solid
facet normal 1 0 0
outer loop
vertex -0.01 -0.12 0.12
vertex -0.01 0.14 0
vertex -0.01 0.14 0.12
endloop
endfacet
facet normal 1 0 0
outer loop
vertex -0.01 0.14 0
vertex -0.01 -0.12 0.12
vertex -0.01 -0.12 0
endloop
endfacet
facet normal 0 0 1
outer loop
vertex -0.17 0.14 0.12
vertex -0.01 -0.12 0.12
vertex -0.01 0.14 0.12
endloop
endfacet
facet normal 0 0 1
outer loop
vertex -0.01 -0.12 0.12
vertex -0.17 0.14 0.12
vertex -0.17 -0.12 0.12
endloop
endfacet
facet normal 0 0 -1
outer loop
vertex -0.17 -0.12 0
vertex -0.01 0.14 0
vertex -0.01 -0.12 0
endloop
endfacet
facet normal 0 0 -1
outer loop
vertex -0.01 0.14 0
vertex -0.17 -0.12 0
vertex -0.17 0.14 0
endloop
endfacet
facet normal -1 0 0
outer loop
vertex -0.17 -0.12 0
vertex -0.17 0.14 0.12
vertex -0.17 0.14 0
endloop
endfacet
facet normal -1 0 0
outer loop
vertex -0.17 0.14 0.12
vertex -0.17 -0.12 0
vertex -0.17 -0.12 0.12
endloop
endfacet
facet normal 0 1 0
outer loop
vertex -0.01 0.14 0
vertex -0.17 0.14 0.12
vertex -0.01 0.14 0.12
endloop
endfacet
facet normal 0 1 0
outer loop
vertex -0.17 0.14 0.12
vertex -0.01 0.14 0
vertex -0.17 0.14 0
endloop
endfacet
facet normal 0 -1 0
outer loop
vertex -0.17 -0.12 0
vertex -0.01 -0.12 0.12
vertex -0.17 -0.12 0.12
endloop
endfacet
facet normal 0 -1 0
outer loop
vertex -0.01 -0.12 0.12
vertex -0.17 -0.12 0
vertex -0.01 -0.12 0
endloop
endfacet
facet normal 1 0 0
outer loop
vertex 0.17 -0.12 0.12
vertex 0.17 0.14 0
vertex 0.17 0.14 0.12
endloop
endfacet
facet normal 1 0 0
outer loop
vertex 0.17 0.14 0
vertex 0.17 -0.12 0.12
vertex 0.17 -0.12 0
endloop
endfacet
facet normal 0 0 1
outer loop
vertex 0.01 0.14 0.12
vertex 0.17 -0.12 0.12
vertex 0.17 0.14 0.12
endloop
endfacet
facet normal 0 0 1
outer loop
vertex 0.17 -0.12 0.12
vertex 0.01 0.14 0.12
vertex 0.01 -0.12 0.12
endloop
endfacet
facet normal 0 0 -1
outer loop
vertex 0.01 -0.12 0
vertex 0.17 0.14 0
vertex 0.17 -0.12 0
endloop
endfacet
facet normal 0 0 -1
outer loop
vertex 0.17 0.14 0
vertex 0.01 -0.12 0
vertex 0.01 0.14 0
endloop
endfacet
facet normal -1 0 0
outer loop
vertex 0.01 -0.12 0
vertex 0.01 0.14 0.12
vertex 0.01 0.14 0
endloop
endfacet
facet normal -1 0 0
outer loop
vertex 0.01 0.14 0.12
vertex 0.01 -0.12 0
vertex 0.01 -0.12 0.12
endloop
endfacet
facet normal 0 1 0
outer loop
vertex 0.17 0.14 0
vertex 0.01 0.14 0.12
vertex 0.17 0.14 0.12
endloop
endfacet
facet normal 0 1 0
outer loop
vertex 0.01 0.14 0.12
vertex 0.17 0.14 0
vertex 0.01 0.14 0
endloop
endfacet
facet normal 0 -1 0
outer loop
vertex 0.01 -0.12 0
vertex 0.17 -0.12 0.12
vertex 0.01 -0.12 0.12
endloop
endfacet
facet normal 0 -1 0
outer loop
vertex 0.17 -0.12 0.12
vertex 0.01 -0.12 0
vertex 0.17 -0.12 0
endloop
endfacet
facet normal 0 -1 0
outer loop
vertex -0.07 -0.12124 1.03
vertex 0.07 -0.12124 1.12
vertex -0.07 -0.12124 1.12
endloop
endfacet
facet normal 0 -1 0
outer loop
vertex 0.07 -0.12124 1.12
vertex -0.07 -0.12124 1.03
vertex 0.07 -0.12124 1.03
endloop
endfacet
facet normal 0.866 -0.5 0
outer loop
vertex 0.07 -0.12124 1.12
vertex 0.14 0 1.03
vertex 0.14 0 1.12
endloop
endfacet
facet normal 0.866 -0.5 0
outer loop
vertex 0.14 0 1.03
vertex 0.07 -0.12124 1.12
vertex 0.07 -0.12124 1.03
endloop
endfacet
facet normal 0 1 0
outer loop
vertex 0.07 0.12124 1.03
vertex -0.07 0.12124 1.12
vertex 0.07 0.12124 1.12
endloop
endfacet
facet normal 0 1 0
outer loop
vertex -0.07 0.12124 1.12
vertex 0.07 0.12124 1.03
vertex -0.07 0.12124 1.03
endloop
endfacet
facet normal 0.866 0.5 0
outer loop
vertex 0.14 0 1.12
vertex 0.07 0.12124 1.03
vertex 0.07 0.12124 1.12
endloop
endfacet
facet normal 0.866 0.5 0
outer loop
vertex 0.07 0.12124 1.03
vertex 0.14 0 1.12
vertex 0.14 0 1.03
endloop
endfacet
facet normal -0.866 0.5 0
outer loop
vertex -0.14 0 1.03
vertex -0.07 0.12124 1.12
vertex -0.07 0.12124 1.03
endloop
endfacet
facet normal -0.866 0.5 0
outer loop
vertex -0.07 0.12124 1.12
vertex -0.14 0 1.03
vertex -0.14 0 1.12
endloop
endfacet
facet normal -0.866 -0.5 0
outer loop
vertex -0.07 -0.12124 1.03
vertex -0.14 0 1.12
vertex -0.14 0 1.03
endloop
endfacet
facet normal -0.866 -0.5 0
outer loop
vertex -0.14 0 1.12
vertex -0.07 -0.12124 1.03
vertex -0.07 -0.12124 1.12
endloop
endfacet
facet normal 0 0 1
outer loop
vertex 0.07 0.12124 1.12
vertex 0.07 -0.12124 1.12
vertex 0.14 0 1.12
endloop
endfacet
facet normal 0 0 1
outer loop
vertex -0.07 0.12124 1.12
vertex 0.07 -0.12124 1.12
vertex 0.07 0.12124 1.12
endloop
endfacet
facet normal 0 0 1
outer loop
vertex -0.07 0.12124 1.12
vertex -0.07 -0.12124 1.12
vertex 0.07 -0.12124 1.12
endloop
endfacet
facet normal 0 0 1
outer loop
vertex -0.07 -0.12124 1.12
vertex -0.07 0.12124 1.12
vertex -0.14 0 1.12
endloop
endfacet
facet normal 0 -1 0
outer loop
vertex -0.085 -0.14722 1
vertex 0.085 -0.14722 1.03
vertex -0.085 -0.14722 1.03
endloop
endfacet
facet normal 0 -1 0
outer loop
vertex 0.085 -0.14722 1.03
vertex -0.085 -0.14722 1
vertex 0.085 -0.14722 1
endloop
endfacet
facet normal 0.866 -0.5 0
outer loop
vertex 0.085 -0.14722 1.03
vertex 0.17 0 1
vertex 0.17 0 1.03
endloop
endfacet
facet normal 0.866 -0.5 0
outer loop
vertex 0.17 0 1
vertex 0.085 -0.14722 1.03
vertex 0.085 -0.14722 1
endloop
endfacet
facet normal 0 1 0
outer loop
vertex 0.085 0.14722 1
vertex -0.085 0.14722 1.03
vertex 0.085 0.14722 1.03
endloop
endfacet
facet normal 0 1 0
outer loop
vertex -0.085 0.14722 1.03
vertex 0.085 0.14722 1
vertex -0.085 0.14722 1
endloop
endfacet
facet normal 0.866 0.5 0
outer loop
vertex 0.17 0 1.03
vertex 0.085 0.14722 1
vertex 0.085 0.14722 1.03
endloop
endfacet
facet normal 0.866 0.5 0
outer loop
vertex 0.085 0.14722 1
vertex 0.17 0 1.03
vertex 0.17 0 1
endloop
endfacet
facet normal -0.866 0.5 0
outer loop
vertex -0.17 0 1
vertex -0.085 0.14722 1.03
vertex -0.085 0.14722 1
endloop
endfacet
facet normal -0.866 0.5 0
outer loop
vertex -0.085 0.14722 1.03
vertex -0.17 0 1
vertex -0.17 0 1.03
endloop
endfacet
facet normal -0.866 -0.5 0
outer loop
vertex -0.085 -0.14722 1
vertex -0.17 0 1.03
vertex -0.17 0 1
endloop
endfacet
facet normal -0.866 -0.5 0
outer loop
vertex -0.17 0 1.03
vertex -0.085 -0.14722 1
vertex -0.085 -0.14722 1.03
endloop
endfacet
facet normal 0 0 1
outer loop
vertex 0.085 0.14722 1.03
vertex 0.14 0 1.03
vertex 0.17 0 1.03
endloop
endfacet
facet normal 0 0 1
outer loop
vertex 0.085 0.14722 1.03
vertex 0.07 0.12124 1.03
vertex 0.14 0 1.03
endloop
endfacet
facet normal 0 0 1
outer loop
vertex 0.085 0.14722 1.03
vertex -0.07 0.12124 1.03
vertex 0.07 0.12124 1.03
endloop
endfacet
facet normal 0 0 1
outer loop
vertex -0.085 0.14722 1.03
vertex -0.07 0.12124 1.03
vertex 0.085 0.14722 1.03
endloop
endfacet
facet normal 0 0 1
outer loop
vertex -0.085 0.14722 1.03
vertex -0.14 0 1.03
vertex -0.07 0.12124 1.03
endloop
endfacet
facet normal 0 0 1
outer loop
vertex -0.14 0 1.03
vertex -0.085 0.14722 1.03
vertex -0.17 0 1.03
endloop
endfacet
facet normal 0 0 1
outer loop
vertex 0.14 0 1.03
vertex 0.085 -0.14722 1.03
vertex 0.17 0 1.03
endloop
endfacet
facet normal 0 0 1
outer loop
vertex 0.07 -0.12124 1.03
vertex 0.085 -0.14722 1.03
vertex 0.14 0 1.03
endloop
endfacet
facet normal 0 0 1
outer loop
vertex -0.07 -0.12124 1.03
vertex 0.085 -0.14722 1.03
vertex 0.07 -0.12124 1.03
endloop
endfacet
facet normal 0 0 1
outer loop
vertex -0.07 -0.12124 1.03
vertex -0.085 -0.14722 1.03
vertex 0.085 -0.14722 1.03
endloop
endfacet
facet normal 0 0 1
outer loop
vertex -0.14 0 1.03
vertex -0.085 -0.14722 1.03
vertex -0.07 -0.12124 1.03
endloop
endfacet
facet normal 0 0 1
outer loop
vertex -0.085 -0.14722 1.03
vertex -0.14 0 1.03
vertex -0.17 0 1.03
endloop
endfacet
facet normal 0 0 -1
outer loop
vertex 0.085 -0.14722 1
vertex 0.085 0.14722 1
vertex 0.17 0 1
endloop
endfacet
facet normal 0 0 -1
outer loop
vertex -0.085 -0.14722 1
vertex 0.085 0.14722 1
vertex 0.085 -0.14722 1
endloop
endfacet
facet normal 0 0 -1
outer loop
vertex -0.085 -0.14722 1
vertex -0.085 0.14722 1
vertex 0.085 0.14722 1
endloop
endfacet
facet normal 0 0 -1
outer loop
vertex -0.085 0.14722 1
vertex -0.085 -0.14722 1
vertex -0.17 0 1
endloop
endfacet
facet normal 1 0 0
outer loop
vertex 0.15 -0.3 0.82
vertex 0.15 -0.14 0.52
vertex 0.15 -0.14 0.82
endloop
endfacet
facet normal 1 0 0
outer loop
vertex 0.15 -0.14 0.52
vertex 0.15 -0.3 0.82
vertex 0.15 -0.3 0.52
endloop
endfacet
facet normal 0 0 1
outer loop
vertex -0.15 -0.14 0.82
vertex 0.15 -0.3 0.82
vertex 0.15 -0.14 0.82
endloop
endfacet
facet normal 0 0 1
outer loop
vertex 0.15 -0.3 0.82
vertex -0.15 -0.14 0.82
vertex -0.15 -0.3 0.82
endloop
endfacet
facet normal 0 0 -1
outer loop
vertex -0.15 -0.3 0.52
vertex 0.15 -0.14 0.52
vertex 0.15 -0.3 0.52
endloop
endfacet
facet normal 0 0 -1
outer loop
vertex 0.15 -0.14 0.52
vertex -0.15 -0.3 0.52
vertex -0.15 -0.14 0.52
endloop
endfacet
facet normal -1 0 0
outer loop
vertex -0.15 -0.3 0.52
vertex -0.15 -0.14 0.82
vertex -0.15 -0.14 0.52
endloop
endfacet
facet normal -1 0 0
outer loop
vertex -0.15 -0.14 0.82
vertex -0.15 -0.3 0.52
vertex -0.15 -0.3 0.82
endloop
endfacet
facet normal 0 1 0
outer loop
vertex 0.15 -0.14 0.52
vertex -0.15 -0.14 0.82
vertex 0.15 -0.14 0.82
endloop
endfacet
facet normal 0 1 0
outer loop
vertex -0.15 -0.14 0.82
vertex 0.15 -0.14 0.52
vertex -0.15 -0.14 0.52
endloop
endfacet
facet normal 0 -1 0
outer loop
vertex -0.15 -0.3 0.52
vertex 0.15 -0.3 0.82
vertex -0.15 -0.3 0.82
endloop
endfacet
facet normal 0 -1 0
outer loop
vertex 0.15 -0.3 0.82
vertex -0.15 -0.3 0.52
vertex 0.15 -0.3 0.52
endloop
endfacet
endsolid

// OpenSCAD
union() {
  union() {
    union() {
      union() {
        translate([-0.17, 0, 0]) {
          translate([0, -0.12, 0]) {
            translate([0, 0, 0.0]) {
              cube([0.16, 0.26, 0.12]);
            }
          }
        }
        translate([1.0e-2, 0, 0]) {
          translate([0, -0.12, 0]) {
            translate([0, 0, 0.0]) {
              cube([0.16, 0.26, 0.12]);
            }
          }
        }
      }
      translate([0, 0, 1.02]) {
        cylinder(h = 0.1, r = 0.14, $fn = 6);
      }
    }
    translate([0, 0, 1.0]) {
      cylinder(h = 3.0e-2, r = 0.17, $fn = 6);
    }
  }
  translate([-0.15, 0, 0]) {
    translate([0, -0.3, 0]) {
      translate([0, 0, 0.52]) {
        cube([0.3, 0.16, 0.3]);
      }
    }
  }
}
$fn = 50;
